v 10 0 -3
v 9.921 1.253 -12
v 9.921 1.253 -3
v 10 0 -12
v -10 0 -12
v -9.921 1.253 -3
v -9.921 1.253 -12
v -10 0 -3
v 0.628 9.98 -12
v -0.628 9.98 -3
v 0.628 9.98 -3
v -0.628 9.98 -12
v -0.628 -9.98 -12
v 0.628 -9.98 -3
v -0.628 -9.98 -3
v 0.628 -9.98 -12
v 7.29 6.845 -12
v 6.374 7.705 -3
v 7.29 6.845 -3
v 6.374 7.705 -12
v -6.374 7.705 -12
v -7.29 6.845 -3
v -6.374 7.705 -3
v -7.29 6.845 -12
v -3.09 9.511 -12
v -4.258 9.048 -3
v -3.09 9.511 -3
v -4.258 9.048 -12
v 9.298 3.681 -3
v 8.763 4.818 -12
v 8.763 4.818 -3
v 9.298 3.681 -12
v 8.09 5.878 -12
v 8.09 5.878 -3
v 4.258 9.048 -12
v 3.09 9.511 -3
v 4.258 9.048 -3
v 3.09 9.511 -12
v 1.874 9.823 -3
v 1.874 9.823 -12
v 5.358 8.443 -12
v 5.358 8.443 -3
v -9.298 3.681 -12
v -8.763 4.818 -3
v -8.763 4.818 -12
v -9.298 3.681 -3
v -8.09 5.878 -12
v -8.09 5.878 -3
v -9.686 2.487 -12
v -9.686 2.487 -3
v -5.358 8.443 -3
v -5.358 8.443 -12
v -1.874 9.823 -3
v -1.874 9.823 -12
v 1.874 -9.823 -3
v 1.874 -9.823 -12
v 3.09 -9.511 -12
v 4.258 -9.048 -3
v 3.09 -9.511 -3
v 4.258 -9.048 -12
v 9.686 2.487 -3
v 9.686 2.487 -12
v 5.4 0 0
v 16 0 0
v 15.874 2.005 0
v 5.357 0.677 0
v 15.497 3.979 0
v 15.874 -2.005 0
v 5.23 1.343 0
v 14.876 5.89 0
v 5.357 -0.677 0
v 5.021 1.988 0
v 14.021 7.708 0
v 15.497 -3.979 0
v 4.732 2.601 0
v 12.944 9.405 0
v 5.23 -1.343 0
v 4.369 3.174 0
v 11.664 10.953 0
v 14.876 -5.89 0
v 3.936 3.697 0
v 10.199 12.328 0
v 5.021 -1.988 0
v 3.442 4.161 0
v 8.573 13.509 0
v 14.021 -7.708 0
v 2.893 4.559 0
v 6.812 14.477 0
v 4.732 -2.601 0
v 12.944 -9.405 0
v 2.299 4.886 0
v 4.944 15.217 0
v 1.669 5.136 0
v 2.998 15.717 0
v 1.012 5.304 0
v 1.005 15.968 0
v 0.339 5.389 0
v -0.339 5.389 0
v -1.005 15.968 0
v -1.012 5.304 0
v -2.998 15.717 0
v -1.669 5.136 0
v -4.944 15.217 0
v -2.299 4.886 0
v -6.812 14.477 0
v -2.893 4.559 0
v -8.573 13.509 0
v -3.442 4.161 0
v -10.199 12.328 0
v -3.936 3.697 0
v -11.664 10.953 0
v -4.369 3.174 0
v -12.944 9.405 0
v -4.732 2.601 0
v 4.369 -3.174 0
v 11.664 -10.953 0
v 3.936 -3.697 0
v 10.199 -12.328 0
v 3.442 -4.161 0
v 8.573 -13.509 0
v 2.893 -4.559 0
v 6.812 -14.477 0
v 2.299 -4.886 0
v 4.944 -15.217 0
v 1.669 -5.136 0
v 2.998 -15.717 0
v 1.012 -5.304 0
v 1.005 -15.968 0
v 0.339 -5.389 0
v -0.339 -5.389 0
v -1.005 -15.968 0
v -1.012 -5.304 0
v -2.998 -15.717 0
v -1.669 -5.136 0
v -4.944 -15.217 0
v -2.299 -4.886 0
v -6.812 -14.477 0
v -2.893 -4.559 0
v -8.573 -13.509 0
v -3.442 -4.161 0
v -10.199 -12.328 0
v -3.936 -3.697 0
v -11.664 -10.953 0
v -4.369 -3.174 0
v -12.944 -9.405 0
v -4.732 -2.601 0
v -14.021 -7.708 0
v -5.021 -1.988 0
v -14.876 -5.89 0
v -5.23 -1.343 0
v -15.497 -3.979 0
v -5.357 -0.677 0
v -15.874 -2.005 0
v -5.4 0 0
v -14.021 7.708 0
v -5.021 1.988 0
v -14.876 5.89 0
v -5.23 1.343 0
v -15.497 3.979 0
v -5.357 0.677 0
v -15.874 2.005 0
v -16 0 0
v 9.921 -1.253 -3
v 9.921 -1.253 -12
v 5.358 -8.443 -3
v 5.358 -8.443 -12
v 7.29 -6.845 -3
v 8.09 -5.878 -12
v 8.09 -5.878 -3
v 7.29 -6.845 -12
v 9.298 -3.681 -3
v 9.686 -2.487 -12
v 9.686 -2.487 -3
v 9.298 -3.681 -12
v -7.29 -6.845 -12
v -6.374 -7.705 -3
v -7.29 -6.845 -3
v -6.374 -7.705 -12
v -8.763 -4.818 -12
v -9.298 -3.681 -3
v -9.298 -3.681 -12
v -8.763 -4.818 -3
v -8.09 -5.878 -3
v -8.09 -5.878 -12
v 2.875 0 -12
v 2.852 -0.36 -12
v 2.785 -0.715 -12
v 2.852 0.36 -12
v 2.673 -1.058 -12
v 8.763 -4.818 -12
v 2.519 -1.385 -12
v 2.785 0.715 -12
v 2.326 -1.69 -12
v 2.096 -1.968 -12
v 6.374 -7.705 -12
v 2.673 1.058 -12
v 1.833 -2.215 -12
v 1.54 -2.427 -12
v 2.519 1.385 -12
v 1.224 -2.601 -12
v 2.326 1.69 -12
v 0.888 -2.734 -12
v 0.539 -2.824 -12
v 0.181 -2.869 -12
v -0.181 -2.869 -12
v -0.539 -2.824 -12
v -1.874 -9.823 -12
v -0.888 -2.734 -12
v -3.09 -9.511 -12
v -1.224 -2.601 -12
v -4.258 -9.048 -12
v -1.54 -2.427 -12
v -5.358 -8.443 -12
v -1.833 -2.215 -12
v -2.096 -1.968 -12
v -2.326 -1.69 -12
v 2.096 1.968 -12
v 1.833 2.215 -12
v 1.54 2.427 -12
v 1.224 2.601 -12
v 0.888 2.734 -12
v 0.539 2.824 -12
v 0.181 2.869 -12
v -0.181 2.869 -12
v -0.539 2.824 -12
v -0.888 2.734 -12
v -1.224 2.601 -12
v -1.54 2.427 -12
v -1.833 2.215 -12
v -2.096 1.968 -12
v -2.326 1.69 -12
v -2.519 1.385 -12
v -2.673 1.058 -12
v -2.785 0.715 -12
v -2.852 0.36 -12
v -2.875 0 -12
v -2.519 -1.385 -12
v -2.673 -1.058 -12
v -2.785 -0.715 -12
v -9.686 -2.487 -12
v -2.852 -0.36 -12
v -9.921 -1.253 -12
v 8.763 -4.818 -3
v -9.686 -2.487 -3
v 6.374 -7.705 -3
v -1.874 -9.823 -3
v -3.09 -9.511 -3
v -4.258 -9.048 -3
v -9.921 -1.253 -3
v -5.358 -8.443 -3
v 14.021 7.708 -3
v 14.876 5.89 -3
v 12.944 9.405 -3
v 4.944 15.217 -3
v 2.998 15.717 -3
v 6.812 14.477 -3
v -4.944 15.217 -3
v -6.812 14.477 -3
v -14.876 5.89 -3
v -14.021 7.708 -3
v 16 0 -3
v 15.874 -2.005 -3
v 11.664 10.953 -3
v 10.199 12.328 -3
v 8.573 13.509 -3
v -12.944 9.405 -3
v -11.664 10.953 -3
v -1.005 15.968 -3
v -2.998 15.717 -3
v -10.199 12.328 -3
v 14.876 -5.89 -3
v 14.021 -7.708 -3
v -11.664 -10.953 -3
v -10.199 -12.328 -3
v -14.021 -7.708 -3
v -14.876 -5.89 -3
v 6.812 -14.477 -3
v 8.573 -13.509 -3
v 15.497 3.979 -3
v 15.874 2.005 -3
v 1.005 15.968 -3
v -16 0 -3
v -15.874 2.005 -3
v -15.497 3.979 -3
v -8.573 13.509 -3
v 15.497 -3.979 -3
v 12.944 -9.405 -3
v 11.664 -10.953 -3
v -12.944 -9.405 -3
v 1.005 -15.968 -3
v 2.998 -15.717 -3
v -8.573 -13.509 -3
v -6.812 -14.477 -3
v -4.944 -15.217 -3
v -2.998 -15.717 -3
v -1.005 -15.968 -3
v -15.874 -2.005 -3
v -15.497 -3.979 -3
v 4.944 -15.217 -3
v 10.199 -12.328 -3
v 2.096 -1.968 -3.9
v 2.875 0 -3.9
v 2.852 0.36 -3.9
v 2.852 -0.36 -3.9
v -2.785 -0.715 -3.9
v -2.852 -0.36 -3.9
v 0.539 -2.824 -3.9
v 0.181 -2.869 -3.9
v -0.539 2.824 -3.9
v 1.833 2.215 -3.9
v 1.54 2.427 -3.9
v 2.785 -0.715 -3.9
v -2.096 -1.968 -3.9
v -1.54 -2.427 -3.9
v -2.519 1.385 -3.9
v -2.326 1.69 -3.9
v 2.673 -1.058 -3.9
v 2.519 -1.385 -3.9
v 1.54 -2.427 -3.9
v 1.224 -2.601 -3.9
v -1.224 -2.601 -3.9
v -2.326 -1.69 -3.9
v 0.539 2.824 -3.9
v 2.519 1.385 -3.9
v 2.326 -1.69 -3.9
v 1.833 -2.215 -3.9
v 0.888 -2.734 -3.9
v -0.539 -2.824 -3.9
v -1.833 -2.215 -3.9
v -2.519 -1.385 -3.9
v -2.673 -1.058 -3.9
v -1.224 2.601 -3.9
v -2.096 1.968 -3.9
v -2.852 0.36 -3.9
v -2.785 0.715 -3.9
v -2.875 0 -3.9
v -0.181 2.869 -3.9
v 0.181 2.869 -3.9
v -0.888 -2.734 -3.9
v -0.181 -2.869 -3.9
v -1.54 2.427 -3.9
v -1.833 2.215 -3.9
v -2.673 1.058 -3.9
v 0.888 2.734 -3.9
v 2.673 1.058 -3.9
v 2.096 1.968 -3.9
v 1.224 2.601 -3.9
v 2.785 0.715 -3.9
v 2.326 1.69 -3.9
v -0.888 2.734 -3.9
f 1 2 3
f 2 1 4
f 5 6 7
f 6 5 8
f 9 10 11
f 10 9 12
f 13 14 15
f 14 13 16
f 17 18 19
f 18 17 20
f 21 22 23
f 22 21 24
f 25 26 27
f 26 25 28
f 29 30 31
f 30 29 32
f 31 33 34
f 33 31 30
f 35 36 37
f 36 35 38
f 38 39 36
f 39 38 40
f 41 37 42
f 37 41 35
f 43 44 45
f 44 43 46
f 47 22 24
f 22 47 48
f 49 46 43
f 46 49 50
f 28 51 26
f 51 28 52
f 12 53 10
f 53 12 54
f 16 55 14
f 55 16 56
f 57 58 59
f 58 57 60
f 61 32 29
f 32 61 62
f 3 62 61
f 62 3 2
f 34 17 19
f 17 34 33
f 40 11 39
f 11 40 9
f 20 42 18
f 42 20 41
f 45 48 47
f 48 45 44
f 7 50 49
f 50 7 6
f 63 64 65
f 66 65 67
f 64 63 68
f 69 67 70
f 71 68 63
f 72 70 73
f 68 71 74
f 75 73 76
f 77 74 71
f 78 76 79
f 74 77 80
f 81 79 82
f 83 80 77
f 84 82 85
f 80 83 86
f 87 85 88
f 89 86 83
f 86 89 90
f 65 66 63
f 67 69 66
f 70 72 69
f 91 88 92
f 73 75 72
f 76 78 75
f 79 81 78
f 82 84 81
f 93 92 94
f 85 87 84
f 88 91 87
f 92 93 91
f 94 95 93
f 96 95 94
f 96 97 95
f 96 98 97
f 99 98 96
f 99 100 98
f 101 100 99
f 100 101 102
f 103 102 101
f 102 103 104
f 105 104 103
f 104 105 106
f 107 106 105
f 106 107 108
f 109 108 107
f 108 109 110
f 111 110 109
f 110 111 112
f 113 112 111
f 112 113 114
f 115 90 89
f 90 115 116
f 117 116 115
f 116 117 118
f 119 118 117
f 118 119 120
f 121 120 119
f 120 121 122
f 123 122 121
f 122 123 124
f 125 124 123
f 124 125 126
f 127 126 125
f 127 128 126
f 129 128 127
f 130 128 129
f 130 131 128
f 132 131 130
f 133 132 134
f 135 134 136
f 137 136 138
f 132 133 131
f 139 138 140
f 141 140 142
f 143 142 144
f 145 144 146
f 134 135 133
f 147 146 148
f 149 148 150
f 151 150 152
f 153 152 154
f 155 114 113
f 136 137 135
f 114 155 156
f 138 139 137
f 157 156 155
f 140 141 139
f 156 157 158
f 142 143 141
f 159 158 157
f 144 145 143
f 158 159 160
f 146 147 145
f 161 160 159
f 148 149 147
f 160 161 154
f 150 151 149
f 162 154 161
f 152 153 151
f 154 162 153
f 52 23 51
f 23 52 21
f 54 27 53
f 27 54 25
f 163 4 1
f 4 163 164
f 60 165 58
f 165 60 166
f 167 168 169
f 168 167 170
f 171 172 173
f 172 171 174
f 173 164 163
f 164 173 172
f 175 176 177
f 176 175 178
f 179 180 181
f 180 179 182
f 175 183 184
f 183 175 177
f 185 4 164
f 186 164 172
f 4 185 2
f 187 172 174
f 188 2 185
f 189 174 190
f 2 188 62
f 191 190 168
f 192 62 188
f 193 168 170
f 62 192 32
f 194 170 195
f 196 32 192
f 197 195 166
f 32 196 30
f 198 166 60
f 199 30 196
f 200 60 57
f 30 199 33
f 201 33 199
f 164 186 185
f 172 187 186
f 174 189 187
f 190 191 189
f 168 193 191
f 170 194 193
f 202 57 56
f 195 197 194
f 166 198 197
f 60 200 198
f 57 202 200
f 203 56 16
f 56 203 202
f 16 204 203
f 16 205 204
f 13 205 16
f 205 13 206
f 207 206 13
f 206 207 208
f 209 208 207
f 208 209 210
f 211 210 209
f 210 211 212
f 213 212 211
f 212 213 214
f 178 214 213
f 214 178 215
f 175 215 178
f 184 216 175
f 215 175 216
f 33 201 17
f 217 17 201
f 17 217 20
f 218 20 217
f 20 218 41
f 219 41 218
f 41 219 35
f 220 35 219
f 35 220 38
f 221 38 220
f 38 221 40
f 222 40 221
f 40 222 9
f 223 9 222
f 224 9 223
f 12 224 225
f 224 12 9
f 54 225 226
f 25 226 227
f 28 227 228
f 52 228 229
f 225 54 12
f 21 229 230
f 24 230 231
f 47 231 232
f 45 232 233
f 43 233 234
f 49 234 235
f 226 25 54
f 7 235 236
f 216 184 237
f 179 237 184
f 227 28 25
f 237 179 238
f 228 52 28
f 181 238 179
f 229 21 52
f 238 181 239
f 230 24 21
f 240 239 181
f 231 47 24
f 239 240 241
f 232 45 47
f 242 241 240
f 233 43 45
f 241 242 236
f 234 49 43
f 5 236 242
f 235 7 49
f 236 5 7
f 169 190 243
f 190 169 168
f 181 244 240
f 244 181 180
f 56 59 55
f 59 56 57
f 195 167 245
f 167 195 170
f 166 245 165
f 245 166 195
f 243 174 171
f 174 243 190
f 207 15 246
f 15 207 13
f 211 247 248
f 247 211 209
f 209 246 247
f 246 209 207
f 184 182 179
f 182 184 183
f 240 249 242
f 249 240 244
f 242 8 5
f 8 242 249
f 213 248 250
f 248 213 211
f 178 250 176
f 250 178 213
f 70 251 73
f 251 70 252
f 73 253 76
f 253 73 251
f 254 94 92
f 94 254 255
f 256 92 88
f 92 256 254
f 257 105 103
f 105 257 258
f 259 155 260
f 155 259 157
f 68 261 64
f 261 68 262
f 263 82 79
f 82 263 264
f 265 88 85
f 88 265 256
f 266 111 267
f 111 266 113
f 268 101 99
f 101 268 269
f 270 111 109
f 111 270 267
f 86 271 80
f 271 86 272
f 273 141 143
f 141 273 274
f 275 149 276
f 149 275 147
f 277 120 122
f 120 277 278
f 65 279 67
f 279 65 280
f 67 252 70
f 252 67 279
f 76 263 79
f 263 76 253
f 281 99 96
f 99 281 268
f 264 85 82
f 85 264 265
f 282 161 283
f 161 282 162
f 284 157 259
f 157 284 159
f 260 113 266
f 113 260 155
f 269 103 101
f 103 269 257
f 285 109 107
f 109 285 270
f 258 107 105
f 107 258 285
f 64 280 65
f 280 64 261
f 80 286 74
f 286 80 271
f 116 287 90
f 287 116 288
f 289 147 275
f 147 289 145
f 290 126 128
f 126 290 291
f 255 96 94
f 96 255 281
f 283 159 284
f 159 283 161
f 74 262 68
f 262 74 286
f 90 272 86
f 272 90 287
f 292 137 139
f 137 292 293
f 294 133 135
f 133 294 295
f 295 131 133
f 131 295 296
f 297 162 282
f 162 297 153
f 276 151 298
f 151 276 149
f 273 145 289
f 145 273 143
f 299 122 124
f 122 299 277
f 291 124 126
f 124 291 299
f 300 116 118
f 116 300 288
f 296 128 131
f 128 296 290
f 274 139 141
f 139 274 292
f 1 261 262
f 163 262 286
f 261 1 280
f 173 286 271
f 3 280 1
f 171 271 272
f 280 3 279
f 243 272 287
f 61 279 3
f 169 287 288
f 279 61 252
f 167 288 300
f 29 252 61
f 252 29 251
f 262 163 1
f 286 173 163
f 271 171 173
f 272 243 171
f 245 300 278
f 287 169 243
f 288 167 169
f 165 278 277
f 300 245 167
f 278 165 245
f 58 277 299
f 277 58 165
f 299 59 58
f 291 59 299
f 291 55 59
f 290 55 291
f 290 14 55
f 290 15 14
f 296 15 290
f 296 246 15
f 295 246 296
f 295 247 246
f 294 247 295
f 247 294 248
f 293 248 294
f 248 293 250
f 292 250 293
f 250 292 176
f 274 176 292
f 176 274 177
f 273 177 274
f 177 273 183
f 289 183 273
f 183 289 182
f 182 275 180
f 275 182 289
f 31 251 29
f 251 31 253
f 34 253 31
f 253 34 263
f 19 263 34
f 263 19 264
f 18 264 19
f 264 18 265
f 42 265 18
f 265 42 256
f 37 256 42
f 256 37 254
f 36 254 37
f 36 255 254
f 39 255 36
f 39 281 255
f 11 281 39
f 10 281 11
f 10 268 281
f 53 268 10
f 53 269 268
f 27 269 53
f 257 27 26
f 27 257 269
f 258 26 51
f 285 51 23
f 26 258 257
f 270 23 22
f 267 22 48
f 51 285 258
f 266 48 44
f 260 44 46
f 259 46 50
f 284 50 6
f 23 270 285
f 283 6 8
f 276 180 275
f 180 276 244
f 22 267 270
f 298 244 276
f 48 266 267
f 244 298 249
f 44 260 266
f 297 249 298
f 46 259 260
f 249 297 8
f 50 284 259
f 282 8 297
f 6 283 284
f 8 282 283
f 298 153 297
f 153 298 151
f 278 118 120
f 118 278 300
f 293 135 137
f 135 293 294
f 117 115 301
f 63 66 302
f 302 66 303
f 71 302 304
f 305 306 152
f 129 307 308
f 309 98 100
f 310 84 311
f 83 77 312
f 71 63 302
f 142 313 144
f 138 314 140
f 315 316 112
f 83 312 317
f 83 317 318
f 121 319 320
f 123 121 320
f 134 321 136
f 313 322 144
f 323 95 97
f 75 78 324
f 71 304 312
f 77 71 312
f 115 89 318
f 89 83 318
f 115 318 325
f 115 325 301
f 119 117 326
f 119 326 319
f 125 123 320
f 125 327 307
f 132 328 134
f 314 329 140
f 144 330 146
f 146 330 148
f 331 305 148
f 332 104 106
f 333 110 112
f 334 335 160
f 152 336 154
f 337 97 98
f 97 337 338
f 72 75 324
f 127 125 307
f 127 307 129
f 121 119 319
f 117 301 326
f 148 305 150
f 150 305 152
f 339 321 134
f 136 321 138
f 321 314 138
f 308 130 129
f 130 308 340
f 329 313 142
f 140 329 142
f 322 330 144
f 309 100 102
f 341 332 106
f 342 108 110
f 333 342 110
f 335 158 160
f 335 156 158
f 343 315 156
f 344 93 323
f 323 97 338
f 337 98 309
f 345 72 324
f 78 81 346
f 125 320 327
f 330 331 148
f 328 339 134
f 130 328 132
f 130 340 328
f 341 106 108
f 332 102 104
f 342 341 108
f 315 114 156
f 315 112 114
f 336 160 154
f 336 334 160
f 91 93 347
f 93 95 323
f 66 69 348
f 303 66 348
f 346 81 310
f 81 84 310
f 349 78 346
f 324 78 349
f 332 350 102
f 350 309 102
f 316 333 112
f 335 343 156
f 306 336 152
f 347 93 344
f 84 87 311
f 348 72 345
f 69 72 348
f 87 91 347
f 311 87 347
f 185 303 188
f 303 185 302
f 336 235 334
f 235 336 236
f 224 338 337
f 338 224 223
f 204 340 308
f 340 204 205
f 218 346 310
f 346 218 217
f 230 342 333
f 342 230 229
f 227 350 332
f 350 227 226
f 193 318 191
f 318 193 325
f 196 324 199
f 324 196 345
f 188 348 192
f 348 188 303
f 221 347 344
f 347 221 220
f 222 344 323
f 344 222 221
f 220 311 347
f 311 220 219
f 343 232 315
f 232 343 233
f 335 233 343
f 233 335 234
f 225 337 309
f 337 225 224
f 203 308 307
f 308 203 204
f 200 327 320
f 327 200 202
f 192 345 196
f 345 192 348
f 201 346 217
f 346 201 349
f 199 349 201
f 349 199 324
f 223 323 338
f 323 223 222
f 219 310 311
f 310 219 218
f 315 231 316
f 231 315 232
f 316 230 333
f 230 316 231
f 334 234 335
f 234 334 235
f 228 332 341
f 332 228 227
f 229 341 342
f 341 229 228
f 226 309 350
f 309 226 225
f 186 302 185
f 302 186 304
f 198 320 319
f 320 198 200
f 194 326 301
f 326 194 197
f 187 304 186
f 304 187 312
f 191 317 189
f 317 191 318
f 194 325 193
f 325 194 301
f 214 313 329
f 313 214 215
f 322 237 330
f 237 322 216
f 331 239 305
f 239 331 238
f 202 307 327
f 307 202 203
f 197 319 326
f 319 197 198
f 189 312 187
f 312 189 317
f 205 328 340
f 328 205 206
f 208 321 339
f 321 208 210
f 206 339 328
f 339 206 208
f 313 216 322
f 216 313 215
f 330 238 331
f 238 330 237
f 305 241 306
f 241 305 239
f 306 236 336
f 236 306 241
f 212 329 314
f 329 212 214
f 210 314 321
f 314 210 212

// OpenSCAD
$fn = 50;


difference() {
	union() {
		translate(v = [0, 0, -12.0000000000]) {
			cylinder(h = 12, r = 10.0000000000);
		}
		translate(v = [0, 0, -3.0000000000]) {
			cylinder(h = 3, r = 16.0000000000);
		}
	}
	union() {
		translate(v = [0, 0, 0]) {
			rotate(a = [0, 0, 0]) {
				difference() {
					union() {
						#translate(v = [0, 0, -12.0000000000]) {
							cylinder(h = 12, r = 2.6000000000);
						}
						#translate(v = [0, 0, -3.9000000000]) {
							cylinder(h = 3.9000000000, r1 = 2.8750000000, r2 = 5.4000000000);
						}
						#translate(v = [0, 0, -12.0000000000]) {
							cylinder(h = 12, r = 2.8750000000);
						}
						#translate(v = [0, 0, -12.0000000000]) {
							cylinder(h = 12, r = 2.6000000000);
						}
					}
					union();
				}
			}
		}
	}
}
